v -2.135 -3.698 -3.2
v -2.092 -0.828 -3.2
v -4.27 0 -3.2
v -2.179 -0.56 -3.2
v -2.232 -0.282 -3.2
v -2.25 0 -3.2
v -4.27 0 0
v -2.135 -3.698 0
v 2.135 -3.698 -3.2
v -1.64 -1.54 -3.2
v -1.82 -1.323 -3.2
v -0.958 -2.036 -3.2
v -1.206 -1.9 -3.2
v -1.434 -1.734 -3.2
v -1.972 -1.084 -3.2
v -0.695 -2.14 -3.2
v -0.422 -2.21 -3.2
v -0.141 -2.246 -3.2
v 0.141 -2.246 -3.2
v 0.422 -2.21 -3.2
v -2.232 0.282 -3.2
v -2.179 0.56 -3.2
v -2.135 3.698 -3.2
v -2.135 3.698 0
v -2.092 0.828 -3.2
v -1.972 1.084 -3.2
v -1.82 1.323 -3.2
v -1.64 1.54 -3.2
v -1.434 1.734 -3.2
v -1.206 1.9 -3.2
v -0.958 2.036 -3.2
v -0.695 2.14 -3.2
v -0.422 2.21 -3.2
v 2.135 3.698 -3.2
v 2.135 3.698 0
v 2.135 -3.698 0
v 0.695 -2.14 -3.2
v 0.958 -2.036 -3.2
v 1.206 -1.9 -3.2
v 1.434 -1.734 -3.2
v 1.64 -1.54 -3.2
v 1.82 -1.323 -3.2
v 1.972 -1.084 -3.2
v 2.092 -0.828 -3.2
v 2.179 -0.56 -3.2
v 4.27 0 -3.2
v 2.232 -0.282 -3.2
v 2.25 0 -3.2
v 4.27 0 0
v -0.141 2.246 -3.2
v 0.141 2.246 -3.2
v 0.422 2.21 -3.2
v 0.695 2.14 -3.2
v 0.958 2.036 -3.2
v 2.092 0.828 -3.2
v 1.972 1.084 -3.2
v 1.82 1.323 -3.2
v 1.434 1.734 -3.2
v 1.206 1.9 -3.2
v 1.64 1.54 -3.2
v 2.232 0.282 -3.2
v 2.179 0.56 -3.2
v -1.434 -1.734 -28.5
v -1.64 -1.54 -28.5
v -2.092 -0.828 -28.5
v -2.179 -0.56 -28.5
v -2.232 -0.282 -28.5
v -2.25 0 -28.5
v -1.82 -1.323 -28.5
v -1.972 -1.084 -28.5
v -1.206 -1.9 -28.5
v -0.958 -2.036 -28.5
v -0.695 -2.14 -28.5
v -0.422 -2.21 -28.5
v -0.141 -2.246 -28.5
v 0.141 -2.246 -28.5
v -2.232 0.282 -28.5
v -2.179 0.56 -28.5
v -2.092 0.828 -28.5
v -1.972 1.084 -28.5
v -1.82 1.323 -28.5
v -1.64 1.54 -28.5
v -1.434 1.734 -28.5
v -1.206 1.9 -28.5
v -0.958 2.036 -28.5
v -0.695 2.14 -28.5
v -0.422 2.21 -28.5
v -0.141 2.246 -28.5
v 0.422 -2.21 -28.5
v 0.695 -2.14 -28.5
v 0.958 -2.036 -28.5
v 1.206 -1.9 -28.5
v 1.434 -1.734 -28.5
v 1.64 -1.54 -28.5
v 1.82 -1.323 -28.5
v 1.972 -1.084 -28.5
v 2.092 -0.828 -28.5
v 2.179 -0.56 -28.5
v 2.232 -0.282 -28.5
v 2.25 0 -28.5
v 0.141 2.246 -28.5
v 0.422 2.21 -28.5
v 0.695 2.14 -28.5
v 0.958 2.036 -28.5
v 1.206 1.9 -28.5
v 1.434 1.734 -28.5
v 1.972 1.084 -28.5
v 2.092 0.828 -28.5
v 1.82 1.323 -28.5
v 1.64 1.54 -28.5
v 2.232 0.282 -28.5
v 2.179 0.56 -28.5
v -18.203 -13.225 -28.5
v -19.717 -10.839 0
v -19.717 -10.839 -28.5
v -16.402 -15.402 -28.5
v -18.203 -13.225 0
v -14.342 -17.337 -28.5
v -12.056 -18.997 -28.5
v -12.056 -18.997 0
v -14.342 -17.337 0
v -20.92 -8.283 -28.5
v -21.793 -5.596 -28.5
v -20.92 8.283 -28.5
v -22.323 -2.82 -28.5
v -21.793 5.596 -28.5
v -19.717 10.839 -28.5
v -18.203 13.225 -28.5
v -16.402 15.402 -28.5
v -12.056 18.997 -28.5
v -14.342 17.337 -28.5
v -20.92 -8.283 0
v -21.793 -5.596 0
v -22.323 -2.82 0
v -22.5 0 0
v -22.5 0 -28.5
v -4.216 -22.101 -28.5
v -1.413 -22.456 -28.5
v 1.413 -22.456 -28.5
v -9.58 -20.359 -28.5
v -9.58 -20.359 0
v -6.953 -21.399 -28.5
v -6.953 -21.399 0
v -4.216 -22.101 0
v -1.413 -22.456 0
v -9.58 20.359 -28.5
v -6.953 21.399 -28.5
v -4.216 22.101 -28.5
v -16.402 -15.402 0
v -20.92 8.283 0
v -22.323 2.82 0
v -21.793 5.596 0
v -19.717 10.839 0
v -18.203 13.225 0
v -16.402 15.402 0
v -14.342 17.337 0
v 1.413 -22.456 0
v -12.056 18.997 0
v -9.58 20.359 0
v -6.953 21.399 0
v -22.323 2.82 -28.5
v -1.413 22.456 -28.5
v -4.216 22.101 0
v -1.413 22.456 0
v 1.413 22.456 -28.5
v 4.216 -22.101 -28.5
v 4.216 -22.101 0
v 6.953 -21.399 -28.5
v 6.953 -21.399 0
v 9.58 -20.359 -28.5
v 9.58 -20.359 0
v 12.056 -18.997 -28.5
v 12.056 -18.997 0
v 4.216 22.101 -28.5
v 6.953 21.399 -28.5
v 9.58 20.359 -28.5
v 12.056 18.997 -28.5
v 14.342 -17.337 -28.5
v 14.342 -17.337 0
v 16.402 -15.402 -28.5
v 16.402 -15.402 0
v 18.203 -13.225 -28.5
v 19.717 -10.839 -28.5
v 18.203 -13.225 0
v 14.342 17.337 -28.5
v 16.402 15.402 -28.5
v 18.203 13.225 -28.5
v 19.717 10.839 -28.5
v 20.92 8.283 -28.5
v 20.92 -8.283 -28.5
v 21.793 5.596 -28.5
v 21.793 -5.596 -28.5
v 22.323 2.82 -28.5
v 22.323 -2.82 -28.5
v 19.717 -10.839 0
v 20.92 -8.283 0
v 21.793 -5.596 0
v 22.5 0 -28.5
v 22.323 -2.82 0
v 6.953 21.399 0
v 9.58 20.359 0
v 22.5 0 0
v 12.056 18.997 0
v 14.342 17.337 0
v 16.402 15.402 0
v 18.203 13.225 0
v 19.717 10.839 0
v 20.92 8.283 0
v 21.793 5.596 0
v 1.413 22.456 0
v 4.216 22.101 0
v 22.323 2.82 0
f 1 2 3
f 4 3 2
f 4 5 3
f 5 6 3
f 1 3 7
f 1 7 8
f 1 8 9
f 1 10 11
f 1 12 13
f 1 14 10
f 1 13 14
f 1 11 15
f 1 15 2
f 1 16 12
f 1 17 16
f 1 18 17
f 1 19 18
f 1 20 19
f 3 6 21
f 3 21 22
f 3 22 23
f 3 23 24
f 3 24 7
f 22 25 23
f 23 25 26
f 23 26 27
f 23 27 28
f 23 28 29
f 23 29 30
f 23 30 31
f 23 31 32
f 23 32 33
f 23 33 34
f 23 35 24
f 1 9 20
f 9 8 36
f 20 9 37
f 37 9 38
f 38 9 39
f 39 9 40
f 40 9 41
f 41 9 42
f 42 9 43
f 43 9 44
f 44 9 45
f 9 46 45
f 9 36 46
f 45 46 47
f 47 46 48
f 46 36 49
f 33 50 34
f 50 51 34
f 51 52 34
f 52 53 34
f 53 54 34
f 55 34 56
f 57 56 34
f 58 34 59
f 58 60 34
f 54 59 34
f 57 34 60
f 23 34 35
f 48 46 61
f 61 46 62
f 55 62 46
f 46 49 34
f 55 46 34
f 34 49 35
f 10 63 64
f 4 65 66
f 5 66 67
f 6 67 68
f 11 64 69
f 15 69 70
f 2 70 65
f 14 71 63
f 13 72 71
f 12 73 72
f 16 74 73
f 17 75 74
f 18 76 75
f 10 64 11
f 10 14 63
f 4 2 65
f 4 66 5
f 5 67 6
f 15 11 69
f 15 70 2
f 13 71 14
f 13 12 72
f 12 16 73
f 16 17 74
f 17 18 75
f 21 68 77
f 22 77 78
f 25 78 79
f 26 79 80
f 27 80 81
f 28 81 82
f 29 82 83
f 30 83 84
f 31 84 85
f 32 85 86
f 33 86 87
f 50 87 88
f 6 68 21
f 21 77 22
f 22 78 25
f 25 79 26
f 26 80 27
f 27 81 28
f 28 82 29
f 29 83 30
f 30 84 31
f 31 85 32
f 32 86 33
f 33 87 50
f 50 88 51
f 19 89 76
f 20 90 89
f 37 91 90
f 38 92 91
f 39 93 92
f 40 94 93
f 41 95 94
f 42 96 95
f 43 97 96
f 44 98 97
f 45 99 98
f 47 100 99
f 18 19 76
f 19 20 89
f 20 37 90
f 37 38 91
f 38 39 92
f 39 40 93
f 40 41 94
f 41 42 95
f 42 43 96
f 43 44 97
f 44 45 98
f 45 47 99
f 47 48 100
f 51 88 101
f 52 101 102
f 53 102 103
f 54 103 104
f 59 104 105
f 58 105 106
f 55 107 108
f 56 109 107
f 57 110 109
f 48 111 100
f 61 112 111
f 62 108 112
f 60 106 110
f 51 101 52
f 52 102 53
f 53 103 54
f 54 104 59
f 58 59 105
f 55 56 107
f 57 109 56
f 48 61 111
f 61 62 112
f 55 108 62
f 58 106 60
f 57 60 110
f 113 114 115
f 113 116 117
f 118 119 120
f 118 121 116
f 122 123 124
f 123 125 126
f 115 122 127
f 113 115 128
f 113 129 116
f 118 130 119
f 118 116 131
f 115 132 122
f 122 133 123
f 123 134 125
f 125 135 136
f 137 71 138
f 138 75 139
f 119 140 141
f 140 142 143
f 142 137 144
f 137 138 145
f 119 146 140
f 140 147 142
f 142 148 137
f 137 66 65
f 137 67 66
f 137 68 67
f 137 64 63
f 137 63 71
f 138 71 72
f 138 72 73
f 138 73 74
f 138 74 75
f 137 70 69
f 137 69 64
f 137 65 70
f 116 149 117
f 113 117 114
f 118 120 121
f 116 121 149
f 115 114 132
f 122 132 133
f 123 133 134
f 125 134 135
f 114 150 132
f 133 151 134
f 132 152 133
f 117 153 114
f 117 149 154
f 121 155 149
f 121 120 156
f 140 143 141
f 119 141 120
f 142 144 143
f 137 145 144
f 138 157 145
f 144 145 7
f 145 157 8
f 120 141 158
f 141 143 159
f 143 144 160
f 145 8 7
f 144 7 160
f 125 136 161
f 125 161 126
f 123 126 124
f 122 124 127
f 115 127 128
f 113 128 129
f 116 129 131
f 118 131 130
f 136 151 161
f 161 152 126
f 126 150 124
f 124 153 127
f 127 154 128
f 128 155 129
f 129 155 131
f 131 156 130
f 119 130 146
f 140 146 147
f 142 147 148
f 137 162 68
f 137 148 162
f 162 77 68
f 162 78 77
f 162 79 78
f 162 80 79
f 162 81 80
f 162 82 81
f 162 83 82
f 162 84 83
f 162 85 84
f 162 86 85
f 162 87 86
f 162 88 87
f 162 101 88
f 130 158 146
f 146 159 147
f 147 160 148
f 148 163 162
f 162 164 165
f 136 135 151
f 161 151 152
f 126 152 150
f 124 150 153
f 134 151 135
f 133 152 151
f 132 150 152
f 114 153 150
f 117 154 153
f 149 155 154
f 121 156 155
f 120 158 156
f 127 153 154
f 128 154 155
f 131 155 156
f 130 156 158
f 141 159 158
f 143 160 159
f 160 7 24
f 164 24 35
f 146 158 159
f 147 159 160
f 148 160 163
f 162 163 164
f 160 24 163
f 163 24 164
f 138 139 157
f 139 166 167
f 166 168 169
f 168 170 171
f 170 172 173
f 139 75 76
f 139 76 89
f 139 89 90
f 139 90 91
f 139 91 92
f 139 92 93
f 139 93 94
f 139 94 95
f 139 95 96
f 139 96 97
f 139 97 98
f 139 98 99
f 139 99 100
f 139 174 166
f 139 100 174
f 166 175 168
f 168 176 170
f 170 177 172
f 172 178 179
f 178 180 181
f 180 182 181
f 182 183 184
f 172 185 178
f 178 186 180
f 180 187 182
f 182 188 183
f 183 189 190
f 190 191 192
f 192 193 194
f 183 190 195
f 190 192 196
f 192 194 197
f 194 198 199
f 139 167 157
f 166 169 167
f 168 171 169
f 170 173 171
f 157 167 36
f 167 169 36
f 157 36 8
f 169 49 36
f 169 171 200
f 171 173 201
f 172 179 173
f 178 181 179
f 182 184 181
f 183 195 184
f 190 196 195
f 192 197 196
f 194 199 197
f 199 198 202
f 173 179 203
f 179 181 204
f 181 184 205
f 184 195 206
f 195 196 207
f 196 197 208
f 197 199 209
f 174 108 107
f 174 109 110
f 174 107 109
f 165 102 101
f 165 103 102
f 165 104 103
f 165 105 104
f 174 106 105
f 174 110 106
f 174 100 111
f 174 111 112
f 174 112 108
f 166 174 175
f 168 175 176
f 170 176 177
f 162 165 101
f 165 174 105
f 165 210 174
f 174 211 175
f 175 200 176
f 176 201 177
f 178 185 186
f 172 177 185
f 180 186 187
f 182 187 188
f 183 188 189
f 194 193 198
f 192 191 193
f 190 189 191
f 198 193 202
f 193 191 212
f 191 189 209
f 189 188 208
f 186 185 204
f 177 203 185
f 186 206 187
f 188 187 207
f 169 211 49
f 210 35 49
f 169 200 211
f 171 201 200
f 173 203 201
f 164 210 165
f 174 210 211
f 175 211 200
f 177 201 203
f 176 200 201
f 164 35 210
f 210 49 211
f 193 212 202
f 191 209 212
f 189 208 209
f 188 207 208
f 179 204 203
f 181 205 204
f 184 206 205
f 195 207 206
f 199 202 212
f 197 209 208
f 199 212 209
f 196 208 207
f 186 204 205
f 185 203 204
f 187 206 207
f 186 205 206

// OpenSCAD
$fn = 50;

difference() {
	union() {
		translate(v = [0, 0, -28.5]) {
			cylinder(h = 28.5, r = 22.5);
		}
	}
	union() {
		translate(v = [0, 0, 0]) {
			rotate(a = [0, 0, 0]) {
				difference() {
					union() {
						translate(v = [0, 0, -3.2]) {
							linear_extrude(height = 3.2) {
								polygon(points = [[4.2698, 0.0], [2.1349000000000005, 3.697755269078796], [-2.134899999999999, 3.6977552690787965], [-4.2698, 5.228996902999369e-16], [-2.134900000000002, -3.6977552690787956], [2.1348999999999974, -3.697755269078798]]);
							}
						}
					}
					union();
				}
			}
		}
		#translate(v = [0, 0, -100.0]) {
			cylinder(h = 200, r = 2.25);
		}
	}
}
